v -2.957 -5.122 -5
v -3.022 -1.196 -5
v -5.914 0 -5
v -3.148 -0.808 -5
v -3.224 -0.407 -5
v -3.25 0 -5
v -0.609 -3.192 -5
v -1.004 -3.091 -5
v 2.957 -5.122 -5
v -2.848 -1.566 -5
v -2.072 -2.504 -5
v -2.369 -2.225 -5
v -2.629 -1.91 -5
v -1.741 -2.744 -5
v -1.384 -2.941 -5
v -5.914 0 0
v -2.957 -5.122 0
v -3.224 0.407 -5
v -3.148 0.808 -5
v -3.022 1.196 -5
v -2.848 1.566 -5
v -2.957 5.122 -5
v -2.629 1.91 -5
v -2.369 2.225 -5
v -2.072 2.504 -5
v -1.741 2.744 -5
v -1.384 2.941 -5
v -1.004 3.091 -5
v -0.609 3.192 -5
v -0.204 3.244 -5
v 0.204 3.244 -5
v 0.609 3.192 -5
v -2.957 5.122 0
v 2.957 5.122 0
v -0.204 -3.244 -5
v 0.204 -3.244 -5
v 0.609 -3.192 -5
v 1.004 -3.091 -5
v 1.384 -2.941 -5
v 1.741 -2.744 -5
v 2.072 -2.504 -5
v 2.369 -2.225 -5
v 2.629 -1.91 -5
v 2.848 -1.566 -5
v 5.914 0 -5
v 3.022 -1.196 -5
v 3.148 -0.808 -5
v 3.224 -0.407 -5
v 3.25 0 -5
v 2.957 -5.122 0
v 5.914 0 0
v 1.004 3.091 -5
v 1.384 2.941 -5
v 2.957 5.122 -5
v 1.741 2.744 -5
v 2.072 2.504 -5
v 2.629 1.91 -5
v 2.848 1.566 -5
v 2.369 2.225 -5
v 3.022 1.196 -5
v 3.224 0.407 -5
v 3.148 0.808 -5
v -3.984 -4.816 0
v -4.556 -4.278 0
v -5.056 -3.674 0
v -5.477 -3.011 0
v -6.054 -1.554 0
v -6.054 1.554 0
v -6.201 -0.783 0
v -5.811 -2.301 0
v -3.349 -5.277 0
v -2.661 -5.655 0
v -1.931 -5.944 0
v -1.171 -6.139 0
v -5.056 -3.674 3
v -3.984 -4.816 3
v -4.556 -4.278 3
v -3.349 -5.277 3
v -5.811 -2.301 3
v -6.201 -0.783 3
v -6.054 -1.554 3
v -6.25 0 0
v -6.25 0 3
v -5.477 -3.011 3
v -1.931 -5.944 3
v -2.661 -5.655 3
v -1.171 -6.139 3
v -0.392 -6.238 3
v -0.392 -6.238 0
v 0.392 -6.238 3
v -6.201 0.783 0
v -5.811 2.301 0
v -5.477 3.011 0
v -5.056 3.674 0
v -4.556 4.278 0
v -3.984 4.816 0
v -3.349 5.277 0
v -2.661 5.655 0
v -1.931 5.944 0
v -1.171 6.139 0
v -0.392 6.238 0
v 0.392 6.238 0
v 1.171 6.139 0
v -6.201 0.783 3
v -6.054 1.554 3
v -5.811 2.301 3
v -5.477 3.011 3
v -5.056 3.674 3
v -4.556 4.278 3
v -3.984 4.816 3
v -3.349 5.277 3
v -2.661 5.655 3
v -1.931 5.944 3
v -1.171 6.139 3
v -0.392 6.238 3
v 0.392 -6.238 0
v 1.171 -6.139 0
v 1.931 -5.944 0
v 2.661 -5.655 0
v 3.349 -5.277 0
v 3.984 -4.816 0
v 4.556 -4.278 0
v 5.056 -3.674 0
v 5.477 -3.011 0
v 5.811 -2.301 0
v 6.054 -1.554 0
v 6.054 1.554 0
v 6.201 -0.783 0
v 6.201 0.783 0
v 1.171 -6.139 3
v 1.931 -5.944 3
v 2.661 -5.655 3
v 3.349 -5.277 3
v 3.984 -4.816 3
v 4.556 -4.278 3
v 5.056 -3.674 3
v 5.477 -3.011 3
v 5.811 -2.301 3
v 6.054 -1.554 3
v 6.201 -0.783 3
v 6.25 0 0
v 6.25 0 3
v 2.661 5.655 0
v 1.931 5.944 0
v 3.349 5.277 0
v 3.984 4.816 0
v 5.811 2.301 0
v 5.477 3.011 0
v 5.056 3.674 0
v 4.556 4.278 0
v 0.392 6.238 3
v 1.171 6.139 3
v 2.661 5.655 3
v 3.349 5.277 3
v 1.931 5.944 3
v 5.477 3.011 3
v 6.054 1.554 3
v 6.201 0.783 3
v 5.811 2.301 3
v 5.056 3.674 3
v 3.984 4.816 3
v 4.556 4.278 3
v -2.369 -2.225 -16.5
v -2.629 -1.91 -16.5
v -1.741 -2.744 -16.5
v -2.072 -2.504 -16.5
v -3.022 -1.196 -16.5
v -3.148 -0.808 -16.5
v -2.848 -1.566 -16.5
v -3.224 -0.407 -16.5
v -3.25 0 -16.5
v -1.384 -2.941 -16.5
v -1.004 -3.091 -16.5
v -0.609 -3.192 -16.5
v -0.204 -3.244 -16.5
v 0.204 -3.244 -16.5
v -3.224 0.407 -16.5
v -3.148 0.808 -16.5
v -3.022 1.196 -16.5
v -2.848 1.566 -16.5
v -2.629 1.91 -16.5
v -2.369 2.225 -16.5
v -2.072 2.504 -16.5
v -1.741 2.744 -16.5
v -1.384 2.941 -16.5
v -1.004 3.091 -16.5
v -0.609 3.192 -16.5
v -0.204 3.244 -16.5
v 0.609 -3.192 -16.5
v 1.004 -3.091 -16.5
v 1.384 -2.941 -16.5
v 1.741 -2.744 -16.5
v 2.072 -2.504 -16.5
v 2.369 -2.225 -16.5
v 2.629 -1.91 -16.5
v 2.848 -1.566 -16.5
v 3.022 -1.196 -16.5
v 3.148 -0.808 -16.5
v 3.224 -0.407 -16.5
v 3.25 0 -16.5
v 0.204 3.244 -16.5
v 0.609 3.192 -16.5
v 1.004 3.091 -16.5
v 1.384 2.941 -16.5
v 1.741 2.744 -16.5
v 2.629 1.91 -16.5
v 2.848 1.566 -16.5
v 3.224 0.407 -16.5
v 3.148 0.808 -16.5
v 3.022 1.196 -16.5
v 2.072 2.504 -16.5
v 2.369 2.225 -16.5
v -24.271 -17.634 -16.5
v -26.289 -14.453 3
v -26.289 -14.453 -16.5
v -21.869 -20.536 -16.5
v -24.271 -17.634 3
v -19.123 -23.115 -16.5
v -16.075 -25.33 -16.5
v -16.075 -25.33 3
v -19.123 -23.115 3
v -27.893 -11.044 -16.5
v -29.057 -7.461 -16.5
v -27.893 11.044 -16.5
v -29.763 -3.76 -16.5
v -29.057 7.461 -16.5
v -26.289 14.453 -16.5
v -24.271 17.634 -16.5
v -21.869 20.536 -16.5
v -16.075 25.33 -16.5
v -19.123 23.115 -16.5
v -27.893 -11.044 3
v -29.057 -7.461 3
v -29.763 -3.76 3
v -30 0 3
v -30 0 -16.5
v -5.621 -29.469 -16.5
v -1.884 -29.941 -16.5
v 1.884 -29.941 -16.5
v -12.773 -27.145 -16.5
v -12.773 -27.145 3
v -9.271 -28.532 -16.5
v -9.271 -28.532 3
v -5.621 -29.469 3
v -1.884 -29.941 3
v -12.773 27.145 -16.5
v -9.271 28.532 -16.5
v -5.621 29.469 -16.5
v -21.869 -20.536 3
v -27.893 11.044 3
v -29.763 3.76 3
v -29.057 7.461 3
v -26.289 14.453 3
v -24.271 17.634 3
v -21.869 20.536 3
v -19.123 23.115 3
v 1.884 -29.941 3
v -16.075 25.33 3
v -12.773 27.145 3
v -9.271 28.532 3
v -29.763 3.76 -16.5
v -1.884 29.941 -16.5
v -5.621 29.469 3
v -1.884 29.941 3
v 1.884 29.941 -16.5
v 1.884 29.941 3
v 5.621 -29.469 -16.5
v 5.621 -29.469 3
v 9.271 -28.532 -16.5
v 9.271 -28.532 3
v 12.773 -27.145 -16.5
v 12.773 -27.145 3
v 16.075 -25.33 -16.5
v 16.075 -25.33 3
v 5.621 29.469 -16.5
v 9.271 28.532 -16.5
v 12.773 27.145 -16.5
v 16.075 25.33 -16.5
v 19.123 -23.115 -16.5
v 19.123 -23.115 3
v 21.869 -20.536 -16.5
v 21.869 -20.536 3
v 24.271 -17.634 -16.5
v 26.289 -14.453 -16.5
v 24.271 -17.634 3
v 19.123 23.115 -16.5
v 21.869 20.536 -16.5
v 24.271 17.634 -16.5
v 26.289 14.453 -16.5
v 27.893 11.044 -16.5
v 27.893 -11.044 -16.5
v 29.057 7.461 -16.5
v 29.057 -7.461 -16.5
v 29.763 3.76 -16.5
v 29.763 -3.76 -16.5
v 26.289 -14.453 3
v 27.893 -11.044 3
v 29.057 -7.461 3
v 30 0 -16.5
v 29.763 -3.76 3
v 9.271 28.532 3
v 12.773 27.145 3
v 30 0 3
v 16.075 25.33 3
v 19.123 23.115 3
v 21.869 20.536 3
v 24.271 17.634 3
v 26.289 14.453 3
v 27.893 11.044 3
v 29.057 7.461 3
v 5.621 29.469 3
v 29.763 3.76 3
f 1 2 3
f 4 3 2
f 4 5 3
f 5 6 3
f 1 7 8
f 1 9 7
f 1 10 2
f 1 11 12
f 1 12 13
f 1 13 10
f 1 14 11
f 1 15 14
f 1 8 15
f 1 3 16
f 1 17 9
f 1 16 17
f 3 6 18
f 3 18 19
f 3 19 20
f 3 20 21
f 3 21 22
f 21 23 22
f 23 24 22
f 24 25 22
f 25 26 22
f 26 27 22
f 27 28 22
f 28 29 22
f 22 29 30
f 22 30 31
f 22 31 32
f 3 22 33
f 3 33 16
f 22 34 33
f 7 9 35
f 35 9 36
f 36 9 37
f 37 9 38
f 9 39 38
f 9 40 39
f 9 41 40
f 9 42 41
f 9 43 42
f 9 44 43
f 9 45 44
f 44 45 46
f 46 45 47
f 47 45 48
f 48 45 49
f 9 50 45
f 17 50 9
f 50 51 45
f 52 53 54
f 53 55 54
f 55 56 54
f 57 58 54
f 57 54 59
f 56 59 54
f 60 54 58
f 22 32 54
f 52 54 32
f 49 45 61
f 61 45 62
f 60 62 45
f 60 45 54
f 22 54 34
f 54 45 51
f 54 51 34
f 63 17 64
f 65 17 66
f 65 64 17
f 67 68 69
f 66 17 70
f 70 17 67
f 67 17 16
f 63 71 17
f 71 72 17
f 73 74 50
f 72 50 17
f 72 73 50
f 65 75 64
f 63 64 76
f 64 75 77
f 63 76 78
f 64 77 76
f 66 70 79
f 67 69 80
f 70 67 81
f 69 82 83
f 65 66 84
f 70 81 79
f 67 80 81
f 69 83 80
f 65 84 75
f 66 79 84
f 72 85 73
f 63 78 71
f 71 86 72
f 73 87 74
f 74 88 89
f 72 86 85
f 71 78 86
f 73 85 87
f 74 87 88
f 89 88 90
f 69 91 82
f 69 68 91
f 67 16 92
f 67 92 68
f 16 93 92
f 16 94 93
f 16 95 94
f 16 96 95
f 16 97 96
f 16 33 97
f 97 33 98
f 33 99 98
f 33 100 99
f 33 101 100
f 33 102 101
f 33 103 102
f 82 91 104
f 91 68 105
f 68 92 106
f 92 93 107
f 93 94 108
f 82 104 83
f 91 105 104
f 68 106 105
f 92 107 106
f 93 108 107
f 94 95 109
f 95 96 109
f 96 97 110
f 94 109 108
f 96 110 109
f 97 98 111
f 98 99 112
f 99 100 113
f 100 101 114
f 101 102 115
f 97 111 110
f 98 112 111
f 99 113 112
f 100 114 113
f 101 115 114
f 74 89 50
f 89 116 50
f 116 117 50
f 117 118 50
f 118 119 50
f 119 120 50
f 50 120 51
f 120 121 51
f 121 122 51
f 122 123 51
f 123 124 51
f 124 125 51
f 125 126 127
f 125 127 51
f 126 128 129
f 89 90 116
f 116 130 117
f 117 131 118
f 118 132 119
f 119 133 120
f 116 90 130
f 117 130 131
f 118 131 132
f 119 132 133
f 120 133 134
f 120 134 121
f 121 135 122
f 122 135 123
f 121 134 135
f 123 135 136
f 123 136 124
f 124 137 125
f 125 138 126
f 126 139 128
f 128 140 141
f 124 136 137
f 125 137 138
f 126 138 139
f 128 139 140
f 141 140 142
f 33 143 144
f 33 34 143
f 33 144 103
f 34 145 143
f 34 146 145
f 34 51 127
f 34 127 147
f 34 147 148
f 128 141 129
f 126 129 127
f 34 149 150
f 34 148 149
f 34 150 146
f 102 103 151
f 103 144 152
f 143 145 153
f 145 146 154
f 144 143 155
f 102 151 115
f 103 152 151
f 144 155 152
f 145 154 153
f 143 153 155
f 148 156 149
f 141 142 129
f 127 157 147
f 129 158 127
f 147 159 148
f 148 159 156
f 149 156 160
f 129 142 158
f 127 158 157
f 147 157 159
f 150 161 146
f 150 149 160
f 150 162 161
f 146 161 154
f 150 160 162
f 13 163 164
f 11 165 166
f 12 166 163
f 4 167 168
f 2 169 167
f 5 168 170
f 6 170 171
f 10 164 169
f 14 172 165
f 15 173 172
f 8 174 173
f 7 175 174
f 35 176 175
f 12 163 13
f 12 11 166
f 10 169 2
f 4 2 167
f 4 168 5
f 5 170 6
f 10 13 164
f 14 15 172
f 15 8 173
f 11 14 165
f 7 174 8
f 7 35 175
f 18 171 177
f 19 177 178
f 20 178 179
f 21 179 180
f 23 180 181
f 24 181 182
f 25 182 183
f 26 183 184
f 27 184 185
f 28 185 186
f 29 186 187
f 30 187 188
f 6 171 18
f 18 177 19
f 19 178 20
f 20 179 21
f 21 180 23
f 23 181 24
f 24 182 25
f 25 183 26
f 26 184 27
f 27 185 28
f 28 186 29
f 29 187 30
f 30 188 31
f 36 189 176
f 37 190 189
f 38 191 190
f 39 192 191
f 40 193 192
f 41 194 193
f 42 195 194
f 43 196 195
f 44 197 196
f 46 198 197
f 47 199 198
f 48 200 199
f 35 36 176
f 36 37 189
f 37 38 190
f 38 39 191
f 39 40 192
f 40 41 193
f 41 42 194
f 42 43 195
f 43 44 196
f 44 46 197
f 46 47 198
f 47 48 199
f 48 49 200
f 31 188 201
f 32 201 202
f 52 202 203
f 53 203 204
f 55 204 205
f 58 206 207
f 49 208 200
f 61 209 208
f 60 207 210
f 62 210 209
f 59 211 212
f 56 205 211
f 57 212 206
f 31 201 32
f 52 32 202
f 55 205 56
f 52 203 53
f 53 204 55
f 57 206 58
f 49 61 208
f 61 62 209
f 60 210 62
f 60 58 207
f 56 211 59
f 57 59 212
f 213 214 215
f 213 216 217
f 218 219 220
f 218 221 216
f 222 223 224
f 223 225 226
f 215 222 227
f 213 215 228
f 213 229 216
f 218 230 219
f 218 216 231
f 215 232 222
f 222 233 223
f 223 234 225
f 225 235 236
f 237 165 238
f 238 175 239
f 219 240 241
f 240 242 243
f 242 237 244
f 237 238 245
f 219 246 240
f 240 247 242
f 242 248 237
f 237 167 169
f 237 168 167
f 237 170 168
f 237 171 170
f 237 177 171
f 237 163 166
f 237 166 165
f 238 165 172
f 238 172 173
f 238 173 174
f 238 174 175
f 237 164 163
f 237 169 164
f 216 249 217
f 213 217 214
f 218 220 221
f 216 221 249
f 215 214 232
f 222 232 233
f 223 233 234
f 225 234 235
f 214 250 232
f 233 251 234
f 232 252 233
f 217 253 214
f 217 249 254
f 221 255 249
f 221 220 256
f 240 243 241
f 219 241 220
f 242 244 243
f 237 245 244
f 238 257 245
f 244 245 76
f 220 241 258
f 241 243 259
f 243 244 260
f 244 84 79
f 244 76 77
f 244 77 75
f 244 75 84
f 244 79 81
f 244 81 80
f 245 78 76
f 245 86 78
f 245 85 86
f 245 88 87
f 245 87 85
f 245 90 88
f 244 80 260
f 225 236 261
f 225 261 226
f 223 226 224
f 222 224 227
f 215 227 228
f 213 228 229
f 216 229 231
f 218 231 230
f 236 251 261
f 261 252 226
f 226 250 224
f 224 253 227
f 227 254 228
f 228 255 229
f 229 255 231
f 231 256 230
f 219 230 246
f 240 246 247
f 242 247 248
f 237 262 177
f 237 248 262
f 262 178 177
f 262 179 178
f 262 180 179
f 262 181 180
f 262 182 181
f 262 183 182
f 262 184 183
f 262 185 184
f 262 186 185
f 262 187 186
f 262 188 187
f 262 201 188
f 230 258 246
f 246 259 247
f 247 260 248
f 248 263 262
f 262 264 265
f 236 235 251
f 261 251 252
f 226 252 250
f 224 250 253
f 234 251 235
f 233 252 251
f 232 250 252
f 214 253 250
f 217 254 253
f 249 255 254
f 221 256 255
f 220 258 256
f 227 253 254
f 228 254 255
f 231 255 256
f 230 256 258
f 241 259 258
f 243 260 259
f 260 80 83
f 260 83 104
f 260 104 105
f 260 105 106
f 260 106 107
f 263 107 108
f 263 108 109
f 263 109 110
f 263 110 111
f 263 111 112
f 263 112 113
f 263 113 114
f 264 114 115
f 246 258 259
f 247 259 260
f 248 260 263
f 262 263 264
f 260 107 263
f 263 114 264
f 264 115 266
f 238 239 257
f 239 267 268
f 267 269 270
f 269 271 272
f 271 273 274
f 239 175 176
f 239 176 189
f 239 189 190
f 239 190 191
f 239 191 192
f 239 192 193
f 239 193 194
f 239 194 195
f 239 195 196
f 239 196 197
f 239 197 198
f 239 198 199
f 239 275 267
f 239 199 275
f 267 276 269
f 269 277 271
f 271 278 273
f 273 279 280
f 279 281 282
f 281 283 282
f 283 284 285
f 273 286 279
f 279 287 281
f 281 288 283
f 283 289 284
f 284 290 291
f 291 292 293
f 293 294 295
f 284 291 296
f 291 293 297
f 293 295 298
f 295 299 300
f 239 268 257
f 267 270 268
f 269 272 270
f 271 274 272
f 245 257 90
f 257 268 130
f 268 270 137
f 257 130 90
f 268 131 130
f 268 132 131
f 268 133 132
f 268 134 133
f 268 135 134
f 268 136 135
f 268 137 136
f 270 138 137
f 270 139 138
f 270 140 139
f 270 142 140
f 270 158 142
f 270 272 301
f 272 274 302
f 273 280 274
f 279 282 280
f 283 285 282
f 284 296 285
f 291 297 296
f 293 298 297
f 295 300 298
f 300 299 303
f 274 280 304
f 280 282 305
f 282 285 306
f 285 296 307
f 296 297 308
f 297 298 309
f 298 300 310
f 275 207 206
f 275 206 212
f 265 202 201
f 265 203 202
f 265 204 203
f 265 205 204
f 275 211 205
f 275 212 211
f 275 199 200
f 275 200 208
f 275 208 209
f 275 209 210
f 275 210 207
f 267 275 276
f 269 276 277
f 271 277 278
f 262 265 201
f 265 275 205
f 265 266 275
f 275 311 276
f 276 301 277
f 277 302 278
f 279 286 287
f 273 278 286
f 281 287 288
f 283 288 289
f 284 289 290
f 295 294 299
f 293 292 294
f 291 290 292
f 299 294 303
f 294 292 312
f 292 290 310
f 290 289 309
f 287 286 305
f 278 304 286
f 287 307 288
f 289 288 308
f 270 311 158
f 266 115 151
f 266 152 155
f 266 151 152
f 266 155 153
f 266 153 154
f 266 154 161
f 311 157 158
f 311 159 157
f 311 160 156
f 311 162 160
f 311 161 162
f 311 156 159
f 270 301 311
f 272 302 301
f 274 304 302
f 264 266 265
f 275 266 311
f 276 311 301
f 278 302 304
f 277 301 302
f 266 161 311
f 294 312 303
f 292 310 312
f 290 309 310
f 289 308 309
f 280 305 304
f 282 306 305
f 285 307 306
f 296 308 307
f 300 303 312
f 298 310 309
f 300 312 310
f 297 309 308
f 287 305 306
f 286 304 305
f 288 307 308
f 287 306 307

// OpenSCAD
$fn = 50;

difference() {
	union() {
		translate(v = [0, 0, -16.5]) {
			cylinder(h = 19.5, r = 30.0);
		}
	}
	union() {
		translate(v = [0, 0, 0]) {
			rotate(a = [0, 0, 0]) {
				difference() {
					union() {
						translate(v = [0, 0, -5]) {
							linear_extrude(height = 5) {
								polygon(points = [[5.914249999999999, 0.0], [2.957125, 5.1218907443321156], [-2.9571249999999982, 5.1218907443321156], [-5.914249999999999, 7.242867331857232e-16], [-2.9571250000000022, -5.121890744332115], [2.9571249999999956, -5.121890744332118]]);
							}
						}
					}
					union();
				}
			}
		}
		#cylinder(h = 3, r = 6.25);
		#translate(v = [0, 0, -100.0]) {
			cylinder(h = 200, r = 3.25);
		}
	}
}
